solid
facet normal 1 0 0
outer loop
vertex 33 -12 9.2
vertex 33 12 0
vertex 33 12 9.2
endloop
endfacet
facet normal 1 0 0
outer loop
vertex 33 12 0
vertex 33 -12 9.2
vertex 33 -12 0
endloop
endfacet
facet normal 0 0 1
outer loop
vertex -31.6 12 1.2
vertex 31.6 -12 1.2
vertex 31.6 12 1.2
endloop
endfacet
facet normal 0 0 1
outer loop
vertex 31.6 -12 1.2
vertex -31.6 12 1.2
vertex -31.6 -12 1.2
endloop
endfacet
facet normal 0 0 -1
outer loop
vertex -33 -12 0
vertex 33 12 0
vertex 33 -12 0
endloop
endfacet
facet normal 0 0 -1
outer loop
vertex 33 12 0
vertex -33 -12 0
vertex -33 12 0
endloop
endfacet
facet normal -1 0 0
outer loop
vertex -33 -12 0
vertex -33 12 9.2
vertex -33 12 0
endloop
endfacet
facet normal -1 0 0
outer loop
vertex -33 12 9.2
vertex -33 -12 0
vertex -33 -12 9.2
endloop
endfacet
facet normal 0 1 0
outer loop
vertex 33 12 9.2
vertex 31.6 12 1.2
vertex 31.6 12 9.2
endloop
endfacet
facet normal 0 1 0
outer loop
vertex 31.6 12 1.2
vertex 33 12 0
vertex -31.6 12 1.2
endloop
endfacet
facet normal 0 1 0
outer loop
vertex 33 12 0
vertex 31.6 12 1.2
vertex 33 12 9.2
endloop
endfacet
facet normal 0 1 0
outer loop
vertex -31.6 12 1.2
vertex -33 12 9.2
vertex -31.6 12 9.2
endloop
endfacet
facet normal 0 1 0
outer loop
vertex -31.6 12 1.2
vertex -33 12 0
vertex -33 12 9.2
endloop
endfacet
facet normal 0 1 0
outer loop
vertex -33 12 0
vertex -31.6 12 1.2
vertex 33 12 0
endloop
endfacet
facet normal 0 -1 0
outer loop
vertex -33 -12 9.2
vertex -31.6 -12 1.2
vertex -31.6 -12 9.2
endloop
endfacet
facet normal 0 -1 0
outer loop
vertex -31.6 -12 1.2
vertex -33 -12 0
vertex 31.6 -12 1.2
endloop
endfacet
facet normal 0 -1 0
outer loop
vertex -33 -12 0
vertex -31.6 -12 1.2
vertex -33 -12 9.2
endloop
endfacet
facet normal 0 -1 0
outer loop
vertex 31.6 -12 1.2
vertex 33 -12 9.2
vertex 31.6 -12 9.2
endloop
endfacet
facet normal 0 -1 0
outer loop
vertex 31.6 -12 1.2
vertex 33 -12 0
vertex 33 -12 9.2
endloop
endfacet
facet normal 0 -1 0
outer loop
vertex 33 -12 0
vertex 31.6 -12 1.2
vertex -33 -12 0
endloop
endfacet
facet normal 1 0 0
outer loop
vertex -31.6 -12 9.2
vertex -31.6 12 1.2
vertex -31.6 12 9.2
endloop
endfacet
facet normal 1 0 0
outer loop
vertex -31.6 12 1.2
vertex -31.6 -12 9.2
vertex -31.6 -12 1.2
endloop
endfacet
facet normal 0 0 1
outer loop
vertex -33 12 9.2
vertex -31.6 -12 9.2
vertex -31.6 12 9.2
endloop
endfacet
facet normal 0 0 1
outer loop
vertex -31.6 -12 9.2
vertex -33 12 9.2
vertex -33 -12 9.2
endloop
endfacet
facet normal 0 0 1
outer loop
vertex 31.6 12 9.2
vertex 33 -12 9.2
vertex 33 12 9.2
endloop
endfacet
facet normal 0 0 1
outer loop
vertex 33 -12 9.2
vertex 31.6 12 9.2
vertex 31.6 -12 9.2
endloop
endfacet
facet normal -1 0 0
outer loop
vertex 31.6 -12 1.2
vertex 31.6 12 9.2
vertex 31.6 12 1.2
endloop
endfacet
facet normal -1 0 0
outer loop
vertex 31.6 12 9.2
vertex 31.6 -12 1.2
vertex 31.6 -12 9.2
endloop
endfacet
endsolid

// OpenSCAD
// IceDrone V1 - battery cradle
// Targets a 1S 550-650 mAh pack, per docs/03_MECHANICAL.md.
// Edit L/W/H below to match your actual battery before final printing.

battery_length = 62;  // L
battery_width  = 20;  // W
battery_height = 8;   // H
wall_thickness = 1.4;
clearance      = 0.6; // extra clearance around the pack
floor_thickness = 1.2;
mount_hole_d   = 2.2;
mount_pattern  = 30;
$fn            = 48;

module battery_cradle_650() {
    L = battery_length + 2 * clearance;
    W = battery_width + 2 * clearance;
    H = battery_height + floor_thickness;

    difference() {
        union() {
            // floor
            translate([-L / 2 - wall_thickness, -W / 2 - wall_thickness, 0])
                cube([L + 2 * wall_thickness, W + 2 * wall_thickness, floor_thickness]);
            // side walls, left open at both ends for strap access
            translate([-L / 2 - wall_thickness, -W / 2 - wall_thickness, 0])
                cube([wall_thickness, W + 2 * wall_thickness, H]);
            translate([L / 2, -W / 2 - wall_thickness, 0])
                cube([wall_thickness, W + 2 * wall_thickness, H]);
        }
        // mounting holes through the floor, matching the 30x30 mm frame pattern
        for (x = [-mount_pattern / 2, mount_pattern / 2])
            for (y = [-mount_pattern / 2, mount_pattern / 2])
                translate([x, y, -0.1])
                    cylinder(d = mount_hole_d, h = floor_thickness + 0.2);
    }
}

battery_cradle_650();
